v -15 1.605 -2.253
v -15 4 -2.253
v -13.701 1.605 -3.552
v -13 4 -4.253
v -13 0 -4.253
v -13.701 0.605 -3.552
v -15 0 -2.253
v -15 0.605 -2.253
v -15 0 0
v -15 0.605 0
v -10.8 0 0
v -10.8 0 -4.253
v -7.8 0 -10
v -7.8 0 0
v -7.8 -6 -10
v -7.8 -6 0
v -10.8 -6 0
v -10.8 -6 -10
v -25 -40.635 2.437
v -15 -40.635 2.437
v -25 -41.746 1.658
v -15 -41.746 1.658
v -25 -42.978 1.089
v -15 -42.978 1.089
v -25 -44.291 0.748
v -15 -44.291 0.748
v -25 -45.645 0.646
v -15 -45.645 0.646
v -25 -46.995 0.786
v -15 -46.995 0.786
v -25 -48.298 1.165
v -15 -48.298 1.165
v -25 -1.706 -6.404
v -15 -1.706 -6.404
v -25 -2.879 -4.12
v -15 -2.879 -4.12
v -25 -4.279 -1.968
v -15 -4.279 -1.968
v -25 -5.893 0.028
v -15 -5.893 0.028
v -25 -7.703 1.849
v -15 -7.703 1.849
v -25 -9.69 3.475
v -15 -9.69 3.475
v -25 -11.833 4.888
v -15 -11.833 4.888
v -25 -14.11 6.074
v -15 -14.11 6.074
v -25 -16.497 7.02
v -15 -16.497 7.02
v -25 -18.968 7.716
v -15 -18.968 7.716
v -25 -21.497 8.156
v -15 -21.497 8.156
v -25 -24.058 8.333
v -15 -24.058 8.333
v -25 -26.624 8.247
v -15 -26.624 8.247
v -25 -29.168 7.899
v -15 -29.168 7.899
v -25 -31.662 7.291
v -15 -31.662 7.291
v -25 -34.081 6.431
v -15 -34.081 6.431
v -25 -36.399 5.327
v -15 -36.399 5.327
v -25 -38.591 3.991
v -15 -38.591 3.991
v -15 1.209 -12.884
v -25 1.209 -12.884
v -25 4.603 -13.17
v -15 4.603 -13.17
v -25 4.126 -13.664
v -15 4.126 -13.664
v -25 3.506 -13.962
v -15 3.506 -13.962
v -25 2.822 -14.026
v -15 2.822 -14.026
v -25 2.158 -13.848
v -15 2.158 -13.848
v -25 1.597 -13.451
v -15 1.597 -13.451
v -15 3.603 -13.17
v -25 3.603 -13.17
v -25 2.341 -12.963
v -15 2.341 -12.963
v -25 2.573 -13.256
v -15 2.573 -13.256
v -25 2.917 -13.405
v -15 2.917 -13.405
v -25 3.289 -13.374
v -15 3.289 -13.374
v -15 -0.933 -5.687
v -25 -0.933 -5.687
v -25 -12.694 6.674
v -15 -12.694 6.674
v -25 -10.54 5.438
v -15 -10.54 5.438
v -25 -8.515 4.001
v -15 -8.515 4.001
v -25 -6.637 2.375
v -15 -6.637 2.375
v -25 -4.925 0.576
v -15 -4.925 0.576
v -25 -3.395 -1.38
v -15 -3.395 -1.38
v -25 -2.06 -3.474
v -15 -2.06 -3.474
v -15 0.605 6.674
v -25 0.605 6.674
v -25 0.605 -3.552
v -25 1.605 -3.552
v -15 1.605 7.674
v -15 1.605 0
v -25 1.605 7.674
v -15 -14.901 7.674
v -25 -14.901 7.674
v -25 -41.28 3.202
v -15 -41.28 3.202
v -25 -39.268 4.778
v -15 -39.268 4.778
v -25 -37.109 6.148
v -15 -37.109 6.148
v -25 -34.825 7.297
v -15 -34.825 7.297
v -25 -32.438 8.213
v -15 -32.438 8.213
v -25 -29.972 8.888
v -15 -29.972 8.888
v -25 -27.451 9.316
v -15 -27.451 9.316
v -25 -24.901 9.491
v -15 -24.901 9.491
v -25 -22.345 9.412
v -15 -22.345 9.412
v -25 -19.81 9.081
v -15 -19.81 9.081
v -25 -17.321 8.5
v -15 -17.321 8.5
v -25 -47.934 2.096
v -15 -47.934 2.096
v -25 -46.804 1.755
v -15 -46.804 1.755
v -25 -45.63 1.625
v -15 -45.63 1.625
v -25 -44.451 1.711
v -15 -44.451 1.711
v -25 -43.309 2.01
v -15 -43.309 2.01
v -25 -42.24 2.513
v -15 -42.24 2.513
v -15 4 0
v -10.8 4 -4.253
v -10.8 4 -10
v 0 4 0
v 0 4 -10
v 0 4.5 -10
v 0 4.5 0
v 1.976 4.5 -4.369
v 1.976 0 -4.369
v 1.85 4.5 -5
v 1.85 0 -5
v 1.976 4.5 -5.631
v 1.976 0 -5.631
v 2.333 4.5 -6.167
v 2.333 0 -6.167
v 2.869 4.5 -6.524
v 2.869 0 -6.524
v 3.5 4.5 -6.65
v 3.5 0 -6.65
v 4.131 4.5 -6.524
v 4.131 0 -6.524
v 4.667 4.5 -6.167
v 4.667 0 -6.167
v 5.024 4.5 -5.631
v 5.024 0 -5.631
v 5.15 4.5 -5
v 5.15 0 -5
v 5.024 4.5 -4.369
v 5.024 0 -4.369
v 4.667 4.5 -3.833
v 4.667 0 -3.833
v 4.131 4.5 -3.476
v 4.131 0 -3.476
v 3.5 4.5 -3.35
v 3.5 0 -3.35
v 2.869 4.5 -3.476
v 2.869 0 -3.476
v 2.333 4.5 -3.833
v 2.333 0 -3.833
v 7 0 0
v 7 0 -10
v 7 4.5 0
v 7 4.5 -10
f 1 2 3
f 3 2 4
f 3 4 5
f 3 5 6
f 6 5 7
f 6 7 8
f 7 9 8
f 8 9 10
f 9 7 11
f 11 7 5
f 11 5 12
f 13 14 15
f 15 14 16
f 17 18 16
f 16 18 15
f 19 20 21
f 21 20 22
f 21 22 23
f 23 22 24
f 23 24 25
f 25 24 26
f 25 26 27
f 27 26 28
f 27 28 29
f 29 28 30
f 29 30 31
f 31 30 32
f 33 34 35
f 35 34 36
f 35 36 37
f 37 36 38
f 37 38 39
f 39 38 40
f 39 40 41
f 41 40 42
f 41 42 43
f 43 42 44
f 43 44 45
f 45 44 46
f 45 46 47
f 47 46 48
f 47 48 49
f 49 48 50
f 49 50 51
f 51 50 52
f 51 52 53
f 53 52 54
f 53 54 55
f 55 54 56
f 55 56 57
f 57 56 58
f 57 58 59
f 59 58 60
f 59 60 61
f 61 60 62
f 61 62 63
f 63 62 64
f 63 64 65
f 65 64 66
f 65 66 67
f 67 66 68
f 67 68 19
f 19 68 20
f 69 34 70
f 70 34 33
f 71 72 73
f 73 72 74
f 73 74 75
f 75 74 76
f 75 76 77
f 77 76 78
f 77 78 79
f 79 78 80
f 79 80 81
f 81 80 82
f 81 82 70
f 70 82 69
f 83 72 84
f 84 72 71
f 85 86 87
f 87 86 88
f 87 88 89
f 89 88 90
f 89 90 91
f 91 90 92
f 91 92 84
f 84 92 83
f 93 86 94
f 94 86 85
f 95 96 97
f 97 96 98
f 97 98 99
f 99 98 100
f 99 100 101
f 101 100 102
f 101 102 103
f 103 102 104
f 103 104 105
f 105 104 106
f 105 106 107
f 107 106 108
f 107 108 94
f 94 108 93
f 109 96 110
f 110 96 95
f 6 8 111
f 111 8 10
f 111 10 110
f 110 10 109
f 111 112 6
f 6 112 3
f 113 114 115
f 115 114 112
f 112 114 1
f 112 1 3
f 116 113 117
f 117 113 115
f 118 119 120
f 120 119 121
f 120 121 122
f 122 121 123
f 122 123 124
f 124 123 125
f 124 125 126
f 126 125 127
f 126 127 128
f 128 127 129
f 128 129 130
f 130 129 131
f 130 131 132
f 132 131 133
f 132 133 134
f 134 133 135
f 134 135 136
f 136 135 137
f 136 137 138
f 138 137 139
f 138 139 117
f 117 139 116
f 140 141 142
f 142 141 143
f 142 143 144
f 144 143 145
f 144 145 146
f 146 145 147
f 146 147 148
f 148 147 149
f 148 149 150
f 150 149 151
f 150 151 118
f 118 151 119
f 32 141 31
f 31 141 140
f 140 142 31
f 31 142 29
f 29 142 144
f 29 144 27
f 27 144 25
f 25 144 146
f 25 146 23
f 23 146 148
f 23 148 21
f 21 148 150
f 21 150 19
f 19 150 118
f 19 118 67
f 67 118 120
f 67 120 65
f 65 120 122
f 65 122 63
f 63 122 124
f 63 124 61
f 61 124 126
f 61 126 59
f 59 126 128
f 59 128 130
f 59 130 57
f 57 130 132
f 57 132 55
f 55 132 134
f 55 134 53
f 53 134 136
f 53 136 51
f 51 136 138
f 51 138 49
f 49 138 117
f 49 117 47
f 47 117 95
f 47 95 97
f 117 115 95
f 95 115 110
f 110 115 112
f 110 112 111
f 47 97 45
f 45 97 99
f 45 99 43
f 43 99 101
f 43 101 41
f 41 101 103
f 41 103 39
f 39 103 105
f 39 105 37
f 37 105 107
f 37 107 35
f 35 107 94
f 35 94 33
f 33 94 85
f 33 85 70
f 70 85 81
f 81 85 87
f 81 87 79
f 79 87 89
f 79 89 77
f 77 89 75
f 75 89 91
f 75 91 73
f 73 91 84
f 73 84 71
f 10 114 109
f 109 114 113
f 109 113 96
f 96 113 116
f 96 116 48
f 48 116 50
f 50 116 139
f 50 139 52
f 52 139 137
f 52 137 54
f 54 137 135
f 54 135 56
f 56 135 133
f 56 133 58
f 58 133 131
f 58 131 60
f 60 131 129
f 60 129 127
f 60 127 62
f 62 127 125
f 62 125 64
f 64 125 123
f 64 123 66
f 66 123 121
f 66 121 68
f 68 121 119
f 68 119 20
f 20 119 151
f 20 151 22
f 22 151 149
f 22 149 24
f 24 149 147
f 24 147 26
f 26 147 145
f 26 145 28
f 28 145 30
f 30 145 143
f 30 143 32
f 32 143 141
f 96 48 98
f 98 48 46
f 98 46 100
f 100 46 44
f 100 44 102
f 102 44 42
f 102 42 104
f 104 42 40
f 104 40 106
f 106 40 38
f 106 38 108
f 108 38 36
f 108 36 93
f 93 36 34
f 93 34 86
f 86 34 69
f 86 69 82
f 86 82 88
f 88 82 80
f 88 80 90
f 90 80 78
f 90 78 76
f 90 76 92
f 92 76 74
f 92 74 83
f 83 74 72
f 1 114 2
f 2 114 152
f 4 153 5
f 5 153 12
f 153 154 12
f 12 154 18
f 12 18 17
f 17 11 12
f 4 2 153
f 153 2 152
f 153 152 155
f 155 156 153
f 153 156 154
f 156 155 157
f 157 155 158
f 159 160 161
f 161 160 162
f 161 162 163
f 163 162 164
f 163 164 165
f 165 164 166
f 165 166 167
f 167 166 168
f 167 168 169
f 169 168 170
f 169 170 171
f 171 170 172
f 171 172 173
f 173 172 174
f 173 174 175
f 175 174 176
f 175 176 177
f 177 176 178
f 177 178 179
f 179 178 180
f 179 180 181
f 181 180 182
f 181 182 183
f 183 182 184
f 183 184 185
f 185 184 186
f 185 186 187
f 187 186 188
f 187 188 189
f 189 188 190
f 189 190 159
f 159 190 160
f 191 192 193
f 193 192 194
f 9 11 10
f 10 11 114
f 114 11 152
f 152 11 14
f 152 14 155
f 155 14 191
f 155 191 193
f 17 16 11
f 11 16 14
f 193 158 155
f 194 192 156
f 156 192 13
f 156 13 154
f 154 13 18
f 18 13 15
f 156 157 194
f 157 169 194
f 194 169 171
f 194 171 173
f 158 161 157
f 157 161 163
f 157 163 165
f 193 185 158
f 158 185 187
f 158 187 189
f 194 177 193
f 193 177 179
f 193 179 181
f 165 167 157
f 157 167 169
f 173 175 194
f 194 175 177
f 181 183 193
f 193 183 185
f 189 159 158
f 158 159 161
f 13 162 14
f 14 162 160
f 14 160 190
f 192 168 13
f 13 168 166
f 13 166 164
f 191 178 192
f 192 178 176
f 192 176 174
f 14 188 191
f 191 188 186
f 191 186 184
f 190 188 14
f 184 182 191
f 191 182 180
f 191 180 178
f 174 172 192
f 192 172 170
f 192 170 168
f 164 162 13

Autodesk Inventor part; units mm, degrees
ref_plane "YZ Plane" through (0, 0, 0) normal (1, 0, 0) x (0, 1, 0)
ref_plane "XZ Plane" through (0, 0, 0) normal (0, 1, 0) x (-1, 0, 0)
sketch "Sketch2" plane through (0, 0, 0) normal (0, 1, 0) x (-1, 0, 0)
  line L0 (0, 0) -> (-7, 0)
  line L1 (-7, 0) -> (-7, -10)
  line L2 (-7, -10) -> (0, -10)
  line L3 (0, -10) -> (0, 0)
  circle A0 centre (-3.5, -5) radius 1.65
  line L4 (0, 0) -> (15, 0)
  line L5 (15, 0) -> (15, -15.9854)
  line L6 (15, -15.9854) -> (0, -15.9854)
  line L7 (0, -15.9854) -> (0, 0)
  line L8 (7.8, 0) -> (10.8, 0)
  line L9 (10.8, 0) -> (10.8, -15.9854)
  line L10 (10.8, -15.9854) -> (7.8, -15.9854)
  line L11 (7.8, -15.9854) -> (7.8, 0)
  line L12 (15, -15.9854) -> (10.8, -15.9854)
  line L13 (10.8, -15.9854) -> (10.8, -4.2527)
  line L14 (10.8, -4.2527) -> (15, -4.2527)
  line L15 (15, -4.2527) -> (15, -15.9854)
  line L16 (0, -10) -> (10.8, -10)
  point P0 (0, -5)
  point P1 (-3.5, -10)
  point P2 (10.8, 0)
  point P3 (15, -4.2527)
  point P4 (7.8, -10)
  dimension "d2" = 7
  dimension "d3" = 10
  dimension "d4" = 3.3
  dimension "d12" = 22
  dimension "d21" = 11.3
  dimension "d22" = 3
extrude "Extrusion1" add sketch "Sketch2" along normal blind 4.5 contours L3 L2 L1 L0
extrude "Extrusion2" add sketch "Sketch2" along normal blind 4 contours L4 L11 L16 L3 | L4 L9 L16 L11 | L4 L5 L14 L9
ref_plane "Work Plane1" through (0, 0, 0) normal (0, -0.9396926, -0.3420201) x (-1, 0, 0)
sketch "Sketch4" plane through (-15, 0, -15.9854) normal (-1, 0, 0) x (0, 0, 1)
  line L0 (-0.8784, 3) -> (12.8006, -3.1551)
  line L1 (12.8006, -3.1551) -> (13.2109, -2.2432)
  line L2 (13.2109, -2.2432) -> (-0.4681, 3.9119)
  line L3 (-0.8784, 3) -> (-0.4681, 3.9119)
  arc A0 (18.4229, -40.6351) -> (9.5813, -1.7065) centre (-0.6772, -24.5048) ccw
  line L4 (18.4229, -40.6351) -> (19.1869, -41.2803)
  line L5 (9.5813, -1.7065) -> (10.2986, -0.9327)
  arc A1 (19.1869, -41.2803) -> (10.2986, -0.9327) centre (-0.2668, -24.413) ccw
  arc A2 (18.4229, -40.6351) -> (17.1504, -48.2979) centre (24.2261, -45.5359) ccw
  arc A3 (19.1869, -41.2803) -> (18.0819, -47.9342) centre (24.064, -45.509) ccw
  line L6 (17.1504, -48.2979) -> (18.0819, -47.9342)
  line L7 (22.6596, -12.694) -> (22.6596, 0.6055)
  line L8 (22.6596, 0.6055) -> (12.4332, 0.6055)
  line L9 (12.4332, 0.6055) -> (12.4332, 1.6055)
  line L10 (12.4332, 1.6055) -> (23.6596, 1.6055)
  line L11 (23.6596, 1.6055) -> (23.6596, -14.9008)
  line L12 (5.9854, 0) -> (11.7327, 0) projected
  arc A4 (2.815, 4.6033) -> (3.1019, 1.209) centre (3.9014, 2.9858) ccw
  line L13 (2.815, 4.6033) -> (2.815, 3.6033)
  arc A5 (2.815, 3.6033) -> (3.0226, 2.3412) centre (3.3375, 3.0411) ccw
  point P0 (15.9854, 0)
  point P1 (13.4215, -1.7995)
  point P2 (1.9601, 2.8193)
  point P3 (2.654, 2.6401)
  dimension "d14" = 1
  dimension "d20" = 15
  dimension "d26" = 25
  dimension "d27" = 1
  dimension "d29" = 1
  dimension "d30" = 1
  dimension "d31" = 1
  dimension "d35" = 3
  dimension "d37" = 1
  dimension "d38" = 1
extrude "Extrusion4" add sketch "Sketch4" along normal blind 10 contours A4 L2 L5 L0 | L5 A1 L1 L0 | L0 L1 A1 L4 A0 | A4 L13 A5 L2 | L4 A3 L6 A2 | L7 L8 L9 L10 L11 A1
extrude "Extrusion5" add sketch "Sketch2" against normal blind 6 contours L4 L9 L16 L11
chamfer "Chamfer1" distance 2 angle 45 1 edges at (-15, 2, -4.2527)
properties part number "spool_blocker"
